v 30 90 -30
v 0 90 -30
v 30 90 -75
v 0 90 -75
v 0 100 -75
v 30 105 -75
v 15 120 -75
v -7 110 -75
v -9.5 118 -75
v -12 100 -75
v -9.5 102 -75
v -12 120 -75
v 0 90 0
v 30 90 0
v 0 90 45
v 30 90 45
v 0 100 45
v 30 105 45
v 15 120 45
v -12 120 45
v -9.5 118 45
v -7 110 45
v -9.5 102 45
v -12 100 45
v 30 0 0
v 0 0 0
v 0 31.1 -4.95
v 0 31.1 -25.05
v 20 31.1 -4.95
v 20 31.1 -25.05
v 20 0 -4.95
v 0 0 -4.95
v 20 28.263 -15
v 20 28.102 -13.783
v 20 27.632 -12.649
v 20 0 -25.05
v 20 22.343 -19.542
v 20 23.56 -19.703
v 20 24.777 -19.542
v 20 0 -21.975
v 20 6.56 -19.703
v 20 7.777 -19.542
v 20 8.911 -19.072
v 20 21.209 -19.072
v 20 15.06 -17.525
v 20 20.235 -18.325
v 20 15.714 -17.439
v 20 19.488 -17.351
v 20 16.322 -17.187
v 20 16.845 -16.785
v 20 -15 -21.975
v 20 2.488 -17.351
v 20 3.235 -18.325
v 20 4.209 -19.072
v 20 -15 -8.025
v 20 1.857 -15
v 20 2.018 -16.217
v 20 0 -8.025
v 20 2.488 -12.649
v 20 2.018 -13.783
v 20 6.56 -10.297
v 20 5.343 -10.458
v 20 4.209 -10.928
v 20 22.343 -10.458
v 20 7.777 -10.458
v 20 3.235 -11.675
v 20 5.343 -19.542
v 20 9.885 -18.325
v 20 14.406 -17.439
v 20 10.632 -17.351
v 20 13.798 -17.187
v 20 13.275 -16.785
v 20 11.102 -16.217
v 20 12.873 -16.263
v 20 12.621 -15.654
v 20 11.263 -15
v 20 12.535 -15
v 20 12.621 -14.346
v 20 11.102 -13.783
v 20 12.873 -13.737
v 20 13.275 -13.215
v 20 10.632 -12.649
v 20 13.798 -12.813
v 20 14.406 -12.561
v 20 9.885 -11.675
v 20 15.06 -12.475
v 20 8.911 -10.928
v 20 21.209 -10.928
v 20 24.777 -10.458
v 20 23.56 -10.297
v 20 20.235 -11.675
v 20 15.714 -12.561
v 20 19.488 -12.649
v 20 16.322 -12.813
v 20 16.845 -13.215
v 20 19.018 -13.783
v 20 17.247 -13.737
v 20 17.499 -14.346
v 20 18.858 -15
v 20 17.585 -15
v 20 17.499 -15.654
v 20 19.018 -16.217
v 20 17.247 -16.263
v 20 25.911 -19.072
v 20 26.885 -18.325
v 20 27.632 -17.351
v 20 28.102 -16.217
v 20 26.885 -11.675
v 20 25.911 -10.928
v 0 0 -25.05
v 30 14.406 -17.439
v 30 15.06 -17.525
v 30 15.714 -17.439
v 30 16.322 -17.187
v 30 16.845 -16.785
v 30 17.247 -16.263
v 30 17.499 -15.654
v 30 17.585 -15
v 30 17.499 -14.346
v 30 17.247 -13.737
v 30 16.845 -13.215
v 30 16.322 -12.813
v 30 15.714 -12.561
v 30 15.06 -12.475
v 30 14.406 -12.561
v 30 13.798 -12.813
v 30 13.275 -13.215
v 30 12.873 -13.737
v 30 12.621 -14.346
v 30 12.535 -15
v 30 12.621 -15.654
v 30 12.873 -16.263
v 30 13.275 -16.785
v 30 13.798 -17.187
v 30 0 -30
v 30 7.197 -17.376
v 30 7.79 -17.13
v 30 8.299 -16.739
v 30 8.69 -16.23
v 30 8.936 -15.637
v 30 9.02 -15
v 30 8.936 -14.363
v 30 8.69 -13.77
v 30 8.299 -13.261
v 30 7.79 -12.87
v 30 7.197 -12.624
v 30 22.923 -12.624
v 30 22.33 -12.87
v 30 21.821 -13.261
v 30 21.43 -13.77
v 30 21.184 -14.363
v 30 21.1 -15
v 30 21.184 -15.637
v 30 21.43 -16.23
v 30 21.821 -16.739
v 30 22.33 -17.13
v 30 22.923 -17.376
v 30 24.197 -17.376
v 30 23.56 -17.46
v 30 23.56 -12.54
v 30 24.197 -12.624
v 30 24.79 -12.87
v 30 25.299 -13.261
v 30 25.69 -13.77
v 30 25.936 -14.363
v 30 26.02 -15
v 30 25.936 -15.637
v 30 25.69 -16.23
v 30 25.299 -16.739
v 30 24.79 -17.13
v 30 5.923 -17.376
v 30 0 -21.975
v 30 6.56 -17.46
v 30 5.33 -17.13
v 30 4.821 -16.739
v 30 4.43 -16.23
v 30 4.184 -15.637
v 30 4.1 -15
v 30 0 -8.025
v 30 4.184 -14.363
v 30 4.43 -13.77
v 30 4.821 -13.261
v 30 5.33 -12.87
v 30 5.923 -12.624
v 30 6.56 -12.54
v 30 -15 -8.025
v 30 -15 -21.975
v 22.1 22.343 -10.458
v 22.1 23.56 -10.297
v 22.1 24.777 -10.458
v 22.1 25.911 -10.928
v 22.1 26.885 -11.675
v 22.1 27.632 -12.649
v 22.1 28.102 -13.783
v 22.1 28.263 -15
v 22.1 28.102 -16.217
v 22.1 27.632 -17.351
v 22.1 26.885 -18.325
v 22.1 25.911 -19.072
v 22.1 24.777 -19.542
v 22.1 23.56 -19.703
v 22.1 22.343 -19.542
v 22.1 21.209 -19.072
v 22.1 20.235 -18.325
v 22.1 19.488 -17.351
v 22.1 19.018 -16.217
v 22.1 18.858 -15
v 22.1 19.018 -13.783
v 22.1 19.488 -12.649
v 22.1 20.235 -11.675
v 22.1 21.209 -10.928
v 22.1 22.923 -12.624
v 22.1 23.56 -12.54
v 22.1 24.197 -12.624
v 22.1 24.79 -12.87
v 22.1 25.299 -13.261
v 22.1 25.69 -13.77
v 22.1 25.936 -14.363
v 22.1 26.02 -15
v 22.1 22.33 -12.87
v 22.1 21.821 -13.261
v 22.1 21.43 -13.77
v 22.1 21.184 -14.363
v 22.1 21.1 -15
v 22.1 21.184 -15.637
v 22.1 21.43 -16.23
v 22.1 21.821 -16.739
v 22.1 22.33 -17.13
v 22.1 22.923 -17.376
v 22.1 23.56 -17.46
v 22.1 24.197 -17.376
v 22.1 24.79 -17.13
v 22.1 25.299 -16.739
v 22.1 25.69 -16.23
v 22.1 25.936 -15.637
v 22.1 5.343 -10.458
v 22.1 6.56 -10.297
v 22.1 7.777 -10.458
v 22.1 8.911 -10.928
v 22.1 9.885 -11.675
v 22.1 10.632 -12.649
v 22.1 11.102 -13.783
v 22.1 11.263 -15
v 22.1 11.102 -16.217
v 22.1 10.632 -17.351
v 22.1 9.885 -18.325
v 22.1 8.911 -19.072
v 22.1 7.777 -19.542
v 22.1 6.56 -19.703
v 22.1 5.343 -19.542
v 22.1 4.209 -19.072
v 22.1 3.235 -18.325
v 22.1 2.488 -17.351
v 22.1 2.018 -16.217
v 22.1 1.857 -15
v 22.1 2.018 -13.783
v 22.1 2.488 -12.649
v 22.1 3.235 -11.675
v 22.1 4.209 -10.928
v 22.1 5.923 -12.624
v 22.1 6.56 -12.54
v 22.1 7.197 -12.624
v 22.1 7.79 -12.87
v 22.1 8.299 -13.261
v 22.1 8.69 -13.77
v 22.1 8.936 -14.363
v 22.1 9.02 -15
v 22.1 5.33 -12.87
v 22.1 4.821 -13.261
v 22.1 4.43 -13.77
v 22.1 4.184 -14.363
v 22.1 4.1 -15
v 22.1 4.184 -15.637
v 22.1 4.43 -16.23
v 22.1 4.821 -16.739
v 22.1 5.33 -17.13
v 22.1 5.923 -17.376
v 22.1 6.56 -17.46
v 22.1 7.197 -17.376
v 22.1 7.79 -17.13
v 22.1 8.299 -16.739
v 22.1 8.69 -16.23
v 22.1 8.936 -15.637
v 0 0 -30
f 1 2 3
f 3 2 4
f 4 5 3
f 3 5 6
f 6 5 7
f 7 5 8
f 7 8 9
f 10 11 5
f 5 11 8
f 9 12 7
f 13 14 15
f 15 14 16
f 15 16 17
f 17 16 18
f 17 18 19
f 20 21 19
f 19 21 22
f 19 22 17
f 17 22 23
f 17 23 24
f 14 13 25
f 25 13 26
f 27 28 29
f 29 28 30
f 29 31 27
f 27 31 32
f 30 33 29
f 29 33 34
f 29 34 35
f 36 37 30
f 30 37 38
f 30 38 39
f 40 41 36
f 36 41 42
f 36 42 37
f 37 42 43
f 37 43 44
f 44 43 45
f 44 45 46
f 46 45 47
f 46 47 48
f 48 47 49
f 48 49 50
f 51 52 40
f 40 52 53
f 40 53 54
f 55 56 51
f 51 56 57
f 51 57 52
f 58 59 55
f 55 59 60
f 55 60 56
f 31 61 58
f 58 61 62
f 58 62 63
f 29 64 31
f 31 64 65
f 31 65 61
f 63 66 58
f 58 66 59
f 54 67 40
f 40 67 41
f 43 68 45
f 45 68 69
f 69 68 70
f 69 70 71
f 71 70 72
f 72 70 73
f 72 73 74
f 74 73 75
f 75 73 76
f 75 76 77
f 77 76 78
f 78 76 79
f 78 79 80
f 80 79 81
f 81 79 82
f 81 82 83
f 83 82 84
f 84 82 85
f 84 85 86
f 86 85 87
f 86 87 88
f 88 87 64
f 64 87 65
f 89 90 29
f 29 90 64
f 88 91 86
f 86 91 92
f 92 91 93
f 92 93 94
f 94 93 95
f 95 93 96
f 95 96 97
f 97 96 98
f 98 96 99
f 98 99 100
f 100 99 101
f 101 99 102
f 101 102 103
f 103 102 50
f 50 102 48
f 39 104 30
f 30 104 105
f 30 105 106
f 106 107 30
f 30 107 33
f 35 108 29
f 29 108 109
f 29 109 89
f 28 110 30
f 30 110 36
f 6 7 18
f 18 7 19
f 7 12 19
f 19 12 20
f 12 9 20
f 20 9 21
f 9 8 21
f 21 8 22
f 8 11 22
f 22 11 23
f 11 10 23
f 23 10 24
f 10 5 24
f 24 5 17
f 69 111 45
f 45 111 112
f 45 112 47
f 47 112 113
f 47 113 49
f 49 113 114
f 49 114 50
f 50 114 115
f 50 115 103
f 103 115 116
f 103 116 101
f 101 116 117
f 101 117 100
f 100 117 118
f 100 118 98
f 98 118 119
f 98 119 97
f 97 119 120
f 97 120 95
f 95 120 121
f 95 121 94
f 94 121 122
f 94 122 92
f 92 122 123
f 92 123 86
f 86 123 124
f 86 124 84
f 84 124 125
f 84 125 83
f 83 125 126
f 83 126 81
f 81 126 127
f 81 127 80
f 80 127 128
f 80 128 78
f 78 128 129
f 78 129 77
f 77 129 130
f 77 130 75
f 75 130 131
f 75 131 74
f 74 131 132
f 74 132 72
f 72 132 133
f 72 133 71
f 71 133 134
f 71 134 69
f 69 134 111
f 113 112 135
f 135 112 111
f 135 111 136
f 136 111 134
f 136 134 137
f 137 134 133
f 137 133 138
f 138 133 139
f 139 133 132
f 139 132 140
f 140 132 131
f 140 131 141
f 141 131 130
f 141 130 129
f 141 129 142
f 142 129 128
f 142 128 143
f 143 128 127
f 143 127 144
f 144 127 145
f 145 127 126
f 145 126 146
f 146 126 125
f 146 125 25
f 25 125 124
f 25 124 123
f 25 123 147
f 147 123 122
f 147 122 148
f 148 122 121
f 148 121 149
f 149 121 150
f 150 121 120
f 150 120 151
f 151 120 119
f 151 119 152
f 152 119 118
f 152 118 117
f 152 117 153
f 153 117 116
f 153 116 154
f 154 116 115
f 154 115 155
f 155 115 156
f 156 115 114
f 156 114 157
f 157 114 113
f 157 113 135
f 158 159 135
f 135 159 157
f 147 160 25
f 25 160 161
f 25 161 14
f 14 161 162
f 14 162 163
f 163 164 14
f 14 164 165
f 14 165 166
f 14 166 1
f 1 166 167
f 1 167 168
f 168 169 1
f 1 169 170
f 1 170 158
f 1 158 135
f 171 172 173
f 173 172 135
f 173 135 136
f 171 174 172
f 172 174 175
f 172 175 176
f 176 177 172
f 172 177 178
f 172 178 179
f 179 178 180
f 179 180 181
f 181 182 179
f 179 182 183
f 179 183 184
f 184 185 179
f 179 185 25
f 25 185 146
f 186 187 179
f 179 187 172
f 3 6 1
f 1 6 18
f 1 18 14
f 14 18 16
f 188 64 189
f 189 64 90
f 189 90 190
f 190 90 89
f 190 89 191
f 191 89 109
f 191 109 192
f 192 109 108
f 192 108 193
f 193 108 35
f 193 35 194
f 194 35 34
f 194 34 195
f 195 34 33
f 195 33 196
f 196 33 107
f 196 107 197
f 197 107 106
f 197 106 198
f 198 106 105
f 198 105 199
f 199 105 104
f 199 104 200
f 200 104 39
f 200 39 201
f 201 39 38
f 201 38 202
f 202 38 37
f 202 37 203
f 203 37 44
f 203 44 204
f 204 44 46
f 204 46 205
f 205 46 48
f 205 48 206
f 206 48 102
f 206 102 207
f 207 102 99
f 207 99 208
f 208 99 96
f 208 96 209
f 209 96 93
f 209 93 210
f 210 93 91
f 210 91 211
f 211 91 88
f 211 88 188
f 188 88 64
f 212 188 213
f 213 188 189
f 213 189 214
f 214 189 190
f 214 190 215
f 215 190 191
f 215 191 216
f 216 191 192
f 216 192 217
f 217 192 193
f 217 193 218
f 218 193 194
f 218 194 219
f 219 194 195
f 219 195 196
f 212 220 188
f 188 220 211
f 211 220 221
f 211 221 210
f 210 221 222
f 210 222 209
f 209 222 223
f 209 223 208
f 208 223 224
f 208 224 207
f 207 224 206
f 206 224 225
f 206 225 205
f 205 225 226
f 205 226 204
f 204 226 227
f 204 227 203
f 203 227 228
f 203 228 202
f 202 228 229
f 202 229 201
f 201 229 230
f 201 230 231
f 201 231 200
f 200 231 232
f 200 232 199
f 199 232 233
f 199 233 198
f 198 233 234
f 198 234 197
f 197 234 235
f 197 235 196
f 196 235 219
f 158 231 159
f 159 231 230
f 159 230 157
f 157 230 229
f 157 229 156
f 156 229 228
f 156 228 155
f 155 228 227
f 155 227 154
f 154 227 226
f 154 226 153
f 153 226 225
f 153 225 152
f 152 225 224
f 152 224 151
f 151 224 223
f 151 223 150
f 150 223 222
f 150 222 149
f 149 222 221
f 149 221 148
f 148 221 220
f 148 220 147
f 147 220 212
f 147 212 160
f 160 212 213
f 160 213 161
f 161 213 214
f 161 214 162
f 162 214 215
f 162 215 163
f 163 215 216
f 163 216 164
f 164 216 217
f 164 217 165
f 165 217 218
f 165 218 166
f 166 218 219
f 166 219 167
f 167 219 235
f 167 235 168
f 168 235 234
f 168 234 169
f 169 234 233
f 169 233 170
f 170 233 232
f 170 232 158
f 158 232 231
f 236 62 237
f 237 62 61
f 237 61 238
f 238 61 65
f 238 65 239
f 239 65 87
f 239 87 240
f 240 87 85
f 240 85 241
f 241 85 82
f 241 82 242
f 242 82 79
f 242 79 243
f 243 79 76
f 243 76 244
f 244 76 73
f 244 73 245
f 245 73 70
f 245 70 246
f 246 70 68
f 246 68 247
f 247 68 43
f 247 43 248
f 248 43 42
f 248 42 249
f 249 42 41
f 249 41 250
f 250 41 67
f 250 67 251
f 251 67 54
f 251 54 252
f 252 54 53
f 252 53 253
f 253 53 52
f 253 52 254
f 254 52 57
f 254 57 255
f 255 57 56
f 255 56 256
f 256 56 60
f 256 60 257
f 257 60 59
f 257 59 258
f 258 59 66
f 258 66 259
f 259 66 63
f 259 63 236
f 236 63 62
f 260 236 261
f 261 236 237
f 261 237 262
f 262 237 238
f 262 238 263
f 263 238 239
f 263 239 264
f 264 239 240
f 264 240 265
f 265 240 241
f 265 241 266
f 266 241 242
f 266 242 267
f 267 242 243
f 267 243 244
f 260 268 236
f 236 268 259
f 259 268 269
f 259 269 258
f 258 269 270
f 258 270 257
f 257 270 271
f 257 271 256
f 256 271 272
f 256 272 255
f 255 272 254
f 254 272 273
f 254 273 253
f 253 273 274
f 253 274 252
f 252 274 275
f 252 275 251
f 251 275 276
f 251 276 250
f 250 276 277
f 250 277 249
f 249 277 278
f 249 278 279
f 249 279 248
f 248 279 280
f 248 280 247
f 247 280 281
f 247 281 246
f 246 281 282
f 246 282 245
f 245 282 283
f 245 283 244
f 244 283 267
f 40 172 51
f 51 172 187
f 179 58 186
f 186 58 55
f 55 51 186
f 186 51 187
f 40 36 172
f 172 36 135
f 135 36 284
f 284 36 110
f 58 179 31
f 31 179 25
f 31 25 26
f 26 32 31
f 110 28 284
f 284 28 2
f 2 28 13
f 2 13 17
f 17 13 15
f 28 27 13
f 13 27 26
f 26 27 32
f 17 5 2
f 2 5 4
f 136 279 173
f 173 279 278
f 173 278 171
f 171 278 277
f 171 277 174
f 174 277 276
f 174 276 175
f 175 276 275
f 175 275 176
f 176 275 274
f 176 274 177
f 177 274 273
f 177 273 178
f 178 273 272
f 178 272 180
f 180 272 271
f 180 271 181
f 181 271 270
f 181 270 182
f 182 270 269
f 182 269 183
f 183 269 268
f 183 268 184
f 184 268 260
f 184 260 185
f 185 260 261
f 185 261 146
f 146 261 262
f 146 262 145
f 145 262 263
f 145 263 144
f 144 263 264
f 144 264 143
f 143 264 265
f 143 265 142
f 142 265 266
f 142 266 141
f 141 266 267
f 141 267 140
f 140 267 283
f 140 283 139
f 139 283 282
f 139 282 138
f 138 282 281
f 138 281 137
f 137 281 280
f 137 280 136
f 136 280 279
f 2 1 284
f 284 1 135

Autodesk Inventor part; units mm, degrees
ref_plane "YZ Plane" through (0, 0, 0) normal (1, 0, 0) x (0, 1, 0)
ref_plane "XZ Plane" through (0, 0, 0) normal (0, 1, 0) x (-1, 0, 0)
sketch "Sketch1" plane through (0, 0, 0) normal (0, 0, 1) x (1, 0, 0)
  line L0 (0, 0) -> (25, 0)
  line L1 (25, 0) -> (25, 40)
  line L2 (25, 40) -> (0, 40)
  line L3 (0, 40) -> (0, 0)
  dimension "d1" = 25
  dimension "d2" = 40
  dimension "d3" = 25
extrude "Extrusion1" add sketch "Sketch1" against normal blind 30
sketch "Sketch2" plane through (25, 0, 0) normal (1, 0, 0) x (0, 0, -1)
  line L0 (0, 0) -> (30, 0) projected
  circle A0 centre (15, 6.56) radius 2.46
extrude "Extrusion2" cut sketch "Sketch2" against normal blind 30
sketch "Sketch3" plane through (0, 0, 0) normal (-1, 0, 0) x (0, 0, 1)
  line L0 (0, 0) -> (-30, 0) projected
  line L1 (-25.05, 0) -> (-4.95, 0)
  line L2 (-4.95, 0) -> (-4.95, 33.12)
  line L3 (-4.95, 33.12) -> (-25.05, 33.12)
  line L4 (-25.05, 33.12) -> (-25.05, 0)
  dimension "d11" = 20.1
extrude "Extrusion3" cut sketch "Sketch3" against normal blind 20
sketch "Sketch4" plane through (0, 0, 0) normal (0, -1, 0) x (1, 0, 0)
  line L0 (20, -4.95) -> (20, -25.05) projected
  line L1 (20, -15) -> (25, -15)
  line L2 (25, 0) -> (25, -30) projected
  line L3 (20, -8.025) -> (25, -8.025)
  line L4 (25, -8.025) -> (25, -21.975)
  line L5 (25, -21.975) -> (20, -21.975)
  line L6 (20, -21.975) -> (20, -8.025)
  line L7 (20, -8.025) -> (25, -21.975) construction
  line L8 (25, -8.025) -> (20, -21.975) construction
  line L9 (25, -12.54) -> (25, -17.46) projected
  point P0 (0, 0)
  point P1 (22.5, -15)
  dimension "d14" = 13.95
extrude "Extrusion4" add sketch "Sketch4" along normal blind 15
sketch "Sketch5" plane through (20, 0, 0) normal (-1, 0, 0) x (0, 0, 1)
  circle A0 centre (-15, 6.56) radius 2.46 projected
  circle A1 centre (-15, 6.56) radius 4.7025
  circle A2 centre (-15, 6.56) radius 2.46 projected
  circle A3 centre (-15, 6.56) radius 2.46
  point P0 (0, 0)
  dimension "d17" = 9.405
extrude "Extrusion5" cut sketch "Sketch5" against normal blind 2.1
sketch "Sketch6" plane through (25, 0, 0) normal (1, 0, 0) x (0, 0, -1)
  circle A0 centre (15, 6.56) radius 4.7025 projected
  line L0 (15, 6.56) -> (15, 23.56)
  circle A1 centre (15, 23.56) radius 2.46
  point P0 (0, 0)
  dimension "d20" = 17
  dimension "d21" = 4.92
extrude "Extrusion6" cut sketch "Sketch6" against normal blind 10 contours A1
sketch "Sketch7" plane through (20, 0, 0) normal (-1, 0, 0) x (0, 0, 1)
  circle A0 centre (-15, 23.56) radius 2.46 projected
  circle A1 centre (-15, 23.56) radius 4.7025
  point P0 (0, 0)
  dimension "d24" = 9.405
extrude "Extrusion7" cut sketch "Sketch7" against normal blind 2.1
sketch "Sketch9" plane through (25, 0, 0) normal (1, 0, 0) x (0, 0, -1)
  circle A0 centre (15, 6.56) radius 2.46 projected
  circle A1 centre (15, 6.56) radius 2.46
  circle A2 centre (15, 23.56) radius 2.46 projected
  circle A3 centre (15, 23.56) radius 2.46
  line L0 (30, 40) -> (30, 0) projected
  line L1 (30, 0) -> (30, 40)
  line L2 (30, 40) -> (0, 40)
  line L3 (0, 40) -> (0, 0)
  line L4 (0, 0) -> (8.025, 0) projected
  line L5 (21.975, 0) -> (21.975, -15)
  line L6 (21.975, -15) -> (8.025, -15)
  line L7 (8.025, -15) -> (8.025, 0)
  line L8 (0, 0) -> (8.025, 0)
  line L9 (21.975, 0) -> (30, 0)
extrude "Extrusion8" add sketch "Sketch9" along normal blind 5
sketch "Sketch10" plane through (0, 40, 0) normal (0, 1, 0) x (1, 0, 0)
  line L0 (0, 30) -> (30, 30) projected
  line L1 (30, 0) -> (0, 0) projected
  line L2 (0, 30) -> (30, 30)
  line L3 (30, 30) -> (30, 0)
  line L4 (30, 0) -> (0, 0)
  line L5 (0, 0) -> (0, 30)
extrude "Extrusion9" add sketch "Sketch10" along normal blind 30
sketch "Sketch12" plane through (30, 0, 0) normal (1, 0, 0) x (0, 0, -1)
  circle A0 centre (15, 6.56) radius 2.46 projected
  line L0 (15, 6.56) -> (15, 15.06)
  circle A1 centre (15, 15.06) radius 2.525
  point P0 (0, 0)
  dimension "d31" = 8.5
  dimension "d33" = 5.05
extrude "Extrusion10" cut sketch "Sketch12" against normal blind 30 contours A1
sketch "Sketch14" plane through (0, 0, 0) normal (0, 0, 1) x (1, 0, 0)
  line L0 (30, 70) -> (0, 70) projected
  line L1 (0, 70) -> (0, 85)
  line L2 (30, 0) -> (30, 70) projected
  line L3 (30, 100) -> (30, 70)
  line L4 (-12, 120) -> (15, 120)
  line L5 (-9.5, 118) -> (-7, 110)
  line L6 (-9.5, 118) -> (-12, 120)
  line L7 (-9.5, 102) -> (-7, 110)
  line L8 (-9.5, 102) -> (-12, 100)
  line L9 (30, 105) -> (15, 120)
  line L10 (30, 105) -> (30, 100)
  line L11 (0, 85) -> (0, 100)
  line L12 (0, 100) -> (-12, 100)
  point P0 (0, 0)
  dimension "d60" = 20
  dimension "d64" = 12
extrude "Extrusion12" add sketch "Sketch14" against normal blind 30
sketch "Sketch15" plane through (0, 0, -25.05) normal (-1, 0, 0) x (0, 0, 1)
  line L0 (0, 33.12) -> (20.1, 33.12) projected
  line L1 (20.1, 33.12) -> (20.1, 0) projected
  line L2 (0, 33.12) -> (20.1, 33.12)
  line L3 (20.1, 33.12) -> (20.1, 31.1)
  line L4 (20.1, 31.1) -> (0, 31.1)
  line L5 (0, 31.1) -> (0, 33.12)
  point P0 (25.05, 0)
  dimension "d57" = 2.02
extrude "Extrusion13" add sketch "Sketch15" against normal blind 20
sketch "Sketch20" plane through (0, 0, 0) normal (0, 0, 1) x (1, 0, 0)
  line L0 (0, 100) -> (-12, 100) projected
  line L1 (0, 100) -> (-12, 100)
  line L2 (-12, 100) -> (-9.5, 102) projected
  line L3 (-12, 100) -> (-9.5, 102)
  line L4 (-9.5, 102) -> (-7, 110) projected
  line L5 (-9.5, 102) -> (-7, 110)
  line L6 (-7, 110) -> (-9.5, 118) projected
  line L7 (-7, 110) -> (-9.5, 118)
  line L8 (-9.5, 118) -> (-12, 120) projected
  line L9 (-9.5, 118) -> (-12, 120)
  line L10 (-12, 120) -> (15, 120) projected
  line L11 (-12, 120) -> (15, 120)
  line L12 (15, 120) -> (30, 105) projected
  line L13 (15, 120) -> (30, 105)
  line L14 (30, 105) -> (30, 90)
  line L15 (30, 0) -> (30, 105) projected
  line L16 (30, 90) -> (0, 90)
  line L17 (0, 90) -> (0, 100)
  point P0 (0, 0)
  dimension "d65" = 15
  dimension "d66" = 30
extrude "Extrusion14" add sketch "Sketch20" along normal blind 45
ref_plane "Work Plane1" through (0, 0, -15) normal (0, 0, 1) x (1, 0, 0)
mirror "Mirror1" about plane through (0, 0, -15) normal (0, 0, 1) of "Extrusion14"
properties part number "rec_b_16mm_x_120mm"
